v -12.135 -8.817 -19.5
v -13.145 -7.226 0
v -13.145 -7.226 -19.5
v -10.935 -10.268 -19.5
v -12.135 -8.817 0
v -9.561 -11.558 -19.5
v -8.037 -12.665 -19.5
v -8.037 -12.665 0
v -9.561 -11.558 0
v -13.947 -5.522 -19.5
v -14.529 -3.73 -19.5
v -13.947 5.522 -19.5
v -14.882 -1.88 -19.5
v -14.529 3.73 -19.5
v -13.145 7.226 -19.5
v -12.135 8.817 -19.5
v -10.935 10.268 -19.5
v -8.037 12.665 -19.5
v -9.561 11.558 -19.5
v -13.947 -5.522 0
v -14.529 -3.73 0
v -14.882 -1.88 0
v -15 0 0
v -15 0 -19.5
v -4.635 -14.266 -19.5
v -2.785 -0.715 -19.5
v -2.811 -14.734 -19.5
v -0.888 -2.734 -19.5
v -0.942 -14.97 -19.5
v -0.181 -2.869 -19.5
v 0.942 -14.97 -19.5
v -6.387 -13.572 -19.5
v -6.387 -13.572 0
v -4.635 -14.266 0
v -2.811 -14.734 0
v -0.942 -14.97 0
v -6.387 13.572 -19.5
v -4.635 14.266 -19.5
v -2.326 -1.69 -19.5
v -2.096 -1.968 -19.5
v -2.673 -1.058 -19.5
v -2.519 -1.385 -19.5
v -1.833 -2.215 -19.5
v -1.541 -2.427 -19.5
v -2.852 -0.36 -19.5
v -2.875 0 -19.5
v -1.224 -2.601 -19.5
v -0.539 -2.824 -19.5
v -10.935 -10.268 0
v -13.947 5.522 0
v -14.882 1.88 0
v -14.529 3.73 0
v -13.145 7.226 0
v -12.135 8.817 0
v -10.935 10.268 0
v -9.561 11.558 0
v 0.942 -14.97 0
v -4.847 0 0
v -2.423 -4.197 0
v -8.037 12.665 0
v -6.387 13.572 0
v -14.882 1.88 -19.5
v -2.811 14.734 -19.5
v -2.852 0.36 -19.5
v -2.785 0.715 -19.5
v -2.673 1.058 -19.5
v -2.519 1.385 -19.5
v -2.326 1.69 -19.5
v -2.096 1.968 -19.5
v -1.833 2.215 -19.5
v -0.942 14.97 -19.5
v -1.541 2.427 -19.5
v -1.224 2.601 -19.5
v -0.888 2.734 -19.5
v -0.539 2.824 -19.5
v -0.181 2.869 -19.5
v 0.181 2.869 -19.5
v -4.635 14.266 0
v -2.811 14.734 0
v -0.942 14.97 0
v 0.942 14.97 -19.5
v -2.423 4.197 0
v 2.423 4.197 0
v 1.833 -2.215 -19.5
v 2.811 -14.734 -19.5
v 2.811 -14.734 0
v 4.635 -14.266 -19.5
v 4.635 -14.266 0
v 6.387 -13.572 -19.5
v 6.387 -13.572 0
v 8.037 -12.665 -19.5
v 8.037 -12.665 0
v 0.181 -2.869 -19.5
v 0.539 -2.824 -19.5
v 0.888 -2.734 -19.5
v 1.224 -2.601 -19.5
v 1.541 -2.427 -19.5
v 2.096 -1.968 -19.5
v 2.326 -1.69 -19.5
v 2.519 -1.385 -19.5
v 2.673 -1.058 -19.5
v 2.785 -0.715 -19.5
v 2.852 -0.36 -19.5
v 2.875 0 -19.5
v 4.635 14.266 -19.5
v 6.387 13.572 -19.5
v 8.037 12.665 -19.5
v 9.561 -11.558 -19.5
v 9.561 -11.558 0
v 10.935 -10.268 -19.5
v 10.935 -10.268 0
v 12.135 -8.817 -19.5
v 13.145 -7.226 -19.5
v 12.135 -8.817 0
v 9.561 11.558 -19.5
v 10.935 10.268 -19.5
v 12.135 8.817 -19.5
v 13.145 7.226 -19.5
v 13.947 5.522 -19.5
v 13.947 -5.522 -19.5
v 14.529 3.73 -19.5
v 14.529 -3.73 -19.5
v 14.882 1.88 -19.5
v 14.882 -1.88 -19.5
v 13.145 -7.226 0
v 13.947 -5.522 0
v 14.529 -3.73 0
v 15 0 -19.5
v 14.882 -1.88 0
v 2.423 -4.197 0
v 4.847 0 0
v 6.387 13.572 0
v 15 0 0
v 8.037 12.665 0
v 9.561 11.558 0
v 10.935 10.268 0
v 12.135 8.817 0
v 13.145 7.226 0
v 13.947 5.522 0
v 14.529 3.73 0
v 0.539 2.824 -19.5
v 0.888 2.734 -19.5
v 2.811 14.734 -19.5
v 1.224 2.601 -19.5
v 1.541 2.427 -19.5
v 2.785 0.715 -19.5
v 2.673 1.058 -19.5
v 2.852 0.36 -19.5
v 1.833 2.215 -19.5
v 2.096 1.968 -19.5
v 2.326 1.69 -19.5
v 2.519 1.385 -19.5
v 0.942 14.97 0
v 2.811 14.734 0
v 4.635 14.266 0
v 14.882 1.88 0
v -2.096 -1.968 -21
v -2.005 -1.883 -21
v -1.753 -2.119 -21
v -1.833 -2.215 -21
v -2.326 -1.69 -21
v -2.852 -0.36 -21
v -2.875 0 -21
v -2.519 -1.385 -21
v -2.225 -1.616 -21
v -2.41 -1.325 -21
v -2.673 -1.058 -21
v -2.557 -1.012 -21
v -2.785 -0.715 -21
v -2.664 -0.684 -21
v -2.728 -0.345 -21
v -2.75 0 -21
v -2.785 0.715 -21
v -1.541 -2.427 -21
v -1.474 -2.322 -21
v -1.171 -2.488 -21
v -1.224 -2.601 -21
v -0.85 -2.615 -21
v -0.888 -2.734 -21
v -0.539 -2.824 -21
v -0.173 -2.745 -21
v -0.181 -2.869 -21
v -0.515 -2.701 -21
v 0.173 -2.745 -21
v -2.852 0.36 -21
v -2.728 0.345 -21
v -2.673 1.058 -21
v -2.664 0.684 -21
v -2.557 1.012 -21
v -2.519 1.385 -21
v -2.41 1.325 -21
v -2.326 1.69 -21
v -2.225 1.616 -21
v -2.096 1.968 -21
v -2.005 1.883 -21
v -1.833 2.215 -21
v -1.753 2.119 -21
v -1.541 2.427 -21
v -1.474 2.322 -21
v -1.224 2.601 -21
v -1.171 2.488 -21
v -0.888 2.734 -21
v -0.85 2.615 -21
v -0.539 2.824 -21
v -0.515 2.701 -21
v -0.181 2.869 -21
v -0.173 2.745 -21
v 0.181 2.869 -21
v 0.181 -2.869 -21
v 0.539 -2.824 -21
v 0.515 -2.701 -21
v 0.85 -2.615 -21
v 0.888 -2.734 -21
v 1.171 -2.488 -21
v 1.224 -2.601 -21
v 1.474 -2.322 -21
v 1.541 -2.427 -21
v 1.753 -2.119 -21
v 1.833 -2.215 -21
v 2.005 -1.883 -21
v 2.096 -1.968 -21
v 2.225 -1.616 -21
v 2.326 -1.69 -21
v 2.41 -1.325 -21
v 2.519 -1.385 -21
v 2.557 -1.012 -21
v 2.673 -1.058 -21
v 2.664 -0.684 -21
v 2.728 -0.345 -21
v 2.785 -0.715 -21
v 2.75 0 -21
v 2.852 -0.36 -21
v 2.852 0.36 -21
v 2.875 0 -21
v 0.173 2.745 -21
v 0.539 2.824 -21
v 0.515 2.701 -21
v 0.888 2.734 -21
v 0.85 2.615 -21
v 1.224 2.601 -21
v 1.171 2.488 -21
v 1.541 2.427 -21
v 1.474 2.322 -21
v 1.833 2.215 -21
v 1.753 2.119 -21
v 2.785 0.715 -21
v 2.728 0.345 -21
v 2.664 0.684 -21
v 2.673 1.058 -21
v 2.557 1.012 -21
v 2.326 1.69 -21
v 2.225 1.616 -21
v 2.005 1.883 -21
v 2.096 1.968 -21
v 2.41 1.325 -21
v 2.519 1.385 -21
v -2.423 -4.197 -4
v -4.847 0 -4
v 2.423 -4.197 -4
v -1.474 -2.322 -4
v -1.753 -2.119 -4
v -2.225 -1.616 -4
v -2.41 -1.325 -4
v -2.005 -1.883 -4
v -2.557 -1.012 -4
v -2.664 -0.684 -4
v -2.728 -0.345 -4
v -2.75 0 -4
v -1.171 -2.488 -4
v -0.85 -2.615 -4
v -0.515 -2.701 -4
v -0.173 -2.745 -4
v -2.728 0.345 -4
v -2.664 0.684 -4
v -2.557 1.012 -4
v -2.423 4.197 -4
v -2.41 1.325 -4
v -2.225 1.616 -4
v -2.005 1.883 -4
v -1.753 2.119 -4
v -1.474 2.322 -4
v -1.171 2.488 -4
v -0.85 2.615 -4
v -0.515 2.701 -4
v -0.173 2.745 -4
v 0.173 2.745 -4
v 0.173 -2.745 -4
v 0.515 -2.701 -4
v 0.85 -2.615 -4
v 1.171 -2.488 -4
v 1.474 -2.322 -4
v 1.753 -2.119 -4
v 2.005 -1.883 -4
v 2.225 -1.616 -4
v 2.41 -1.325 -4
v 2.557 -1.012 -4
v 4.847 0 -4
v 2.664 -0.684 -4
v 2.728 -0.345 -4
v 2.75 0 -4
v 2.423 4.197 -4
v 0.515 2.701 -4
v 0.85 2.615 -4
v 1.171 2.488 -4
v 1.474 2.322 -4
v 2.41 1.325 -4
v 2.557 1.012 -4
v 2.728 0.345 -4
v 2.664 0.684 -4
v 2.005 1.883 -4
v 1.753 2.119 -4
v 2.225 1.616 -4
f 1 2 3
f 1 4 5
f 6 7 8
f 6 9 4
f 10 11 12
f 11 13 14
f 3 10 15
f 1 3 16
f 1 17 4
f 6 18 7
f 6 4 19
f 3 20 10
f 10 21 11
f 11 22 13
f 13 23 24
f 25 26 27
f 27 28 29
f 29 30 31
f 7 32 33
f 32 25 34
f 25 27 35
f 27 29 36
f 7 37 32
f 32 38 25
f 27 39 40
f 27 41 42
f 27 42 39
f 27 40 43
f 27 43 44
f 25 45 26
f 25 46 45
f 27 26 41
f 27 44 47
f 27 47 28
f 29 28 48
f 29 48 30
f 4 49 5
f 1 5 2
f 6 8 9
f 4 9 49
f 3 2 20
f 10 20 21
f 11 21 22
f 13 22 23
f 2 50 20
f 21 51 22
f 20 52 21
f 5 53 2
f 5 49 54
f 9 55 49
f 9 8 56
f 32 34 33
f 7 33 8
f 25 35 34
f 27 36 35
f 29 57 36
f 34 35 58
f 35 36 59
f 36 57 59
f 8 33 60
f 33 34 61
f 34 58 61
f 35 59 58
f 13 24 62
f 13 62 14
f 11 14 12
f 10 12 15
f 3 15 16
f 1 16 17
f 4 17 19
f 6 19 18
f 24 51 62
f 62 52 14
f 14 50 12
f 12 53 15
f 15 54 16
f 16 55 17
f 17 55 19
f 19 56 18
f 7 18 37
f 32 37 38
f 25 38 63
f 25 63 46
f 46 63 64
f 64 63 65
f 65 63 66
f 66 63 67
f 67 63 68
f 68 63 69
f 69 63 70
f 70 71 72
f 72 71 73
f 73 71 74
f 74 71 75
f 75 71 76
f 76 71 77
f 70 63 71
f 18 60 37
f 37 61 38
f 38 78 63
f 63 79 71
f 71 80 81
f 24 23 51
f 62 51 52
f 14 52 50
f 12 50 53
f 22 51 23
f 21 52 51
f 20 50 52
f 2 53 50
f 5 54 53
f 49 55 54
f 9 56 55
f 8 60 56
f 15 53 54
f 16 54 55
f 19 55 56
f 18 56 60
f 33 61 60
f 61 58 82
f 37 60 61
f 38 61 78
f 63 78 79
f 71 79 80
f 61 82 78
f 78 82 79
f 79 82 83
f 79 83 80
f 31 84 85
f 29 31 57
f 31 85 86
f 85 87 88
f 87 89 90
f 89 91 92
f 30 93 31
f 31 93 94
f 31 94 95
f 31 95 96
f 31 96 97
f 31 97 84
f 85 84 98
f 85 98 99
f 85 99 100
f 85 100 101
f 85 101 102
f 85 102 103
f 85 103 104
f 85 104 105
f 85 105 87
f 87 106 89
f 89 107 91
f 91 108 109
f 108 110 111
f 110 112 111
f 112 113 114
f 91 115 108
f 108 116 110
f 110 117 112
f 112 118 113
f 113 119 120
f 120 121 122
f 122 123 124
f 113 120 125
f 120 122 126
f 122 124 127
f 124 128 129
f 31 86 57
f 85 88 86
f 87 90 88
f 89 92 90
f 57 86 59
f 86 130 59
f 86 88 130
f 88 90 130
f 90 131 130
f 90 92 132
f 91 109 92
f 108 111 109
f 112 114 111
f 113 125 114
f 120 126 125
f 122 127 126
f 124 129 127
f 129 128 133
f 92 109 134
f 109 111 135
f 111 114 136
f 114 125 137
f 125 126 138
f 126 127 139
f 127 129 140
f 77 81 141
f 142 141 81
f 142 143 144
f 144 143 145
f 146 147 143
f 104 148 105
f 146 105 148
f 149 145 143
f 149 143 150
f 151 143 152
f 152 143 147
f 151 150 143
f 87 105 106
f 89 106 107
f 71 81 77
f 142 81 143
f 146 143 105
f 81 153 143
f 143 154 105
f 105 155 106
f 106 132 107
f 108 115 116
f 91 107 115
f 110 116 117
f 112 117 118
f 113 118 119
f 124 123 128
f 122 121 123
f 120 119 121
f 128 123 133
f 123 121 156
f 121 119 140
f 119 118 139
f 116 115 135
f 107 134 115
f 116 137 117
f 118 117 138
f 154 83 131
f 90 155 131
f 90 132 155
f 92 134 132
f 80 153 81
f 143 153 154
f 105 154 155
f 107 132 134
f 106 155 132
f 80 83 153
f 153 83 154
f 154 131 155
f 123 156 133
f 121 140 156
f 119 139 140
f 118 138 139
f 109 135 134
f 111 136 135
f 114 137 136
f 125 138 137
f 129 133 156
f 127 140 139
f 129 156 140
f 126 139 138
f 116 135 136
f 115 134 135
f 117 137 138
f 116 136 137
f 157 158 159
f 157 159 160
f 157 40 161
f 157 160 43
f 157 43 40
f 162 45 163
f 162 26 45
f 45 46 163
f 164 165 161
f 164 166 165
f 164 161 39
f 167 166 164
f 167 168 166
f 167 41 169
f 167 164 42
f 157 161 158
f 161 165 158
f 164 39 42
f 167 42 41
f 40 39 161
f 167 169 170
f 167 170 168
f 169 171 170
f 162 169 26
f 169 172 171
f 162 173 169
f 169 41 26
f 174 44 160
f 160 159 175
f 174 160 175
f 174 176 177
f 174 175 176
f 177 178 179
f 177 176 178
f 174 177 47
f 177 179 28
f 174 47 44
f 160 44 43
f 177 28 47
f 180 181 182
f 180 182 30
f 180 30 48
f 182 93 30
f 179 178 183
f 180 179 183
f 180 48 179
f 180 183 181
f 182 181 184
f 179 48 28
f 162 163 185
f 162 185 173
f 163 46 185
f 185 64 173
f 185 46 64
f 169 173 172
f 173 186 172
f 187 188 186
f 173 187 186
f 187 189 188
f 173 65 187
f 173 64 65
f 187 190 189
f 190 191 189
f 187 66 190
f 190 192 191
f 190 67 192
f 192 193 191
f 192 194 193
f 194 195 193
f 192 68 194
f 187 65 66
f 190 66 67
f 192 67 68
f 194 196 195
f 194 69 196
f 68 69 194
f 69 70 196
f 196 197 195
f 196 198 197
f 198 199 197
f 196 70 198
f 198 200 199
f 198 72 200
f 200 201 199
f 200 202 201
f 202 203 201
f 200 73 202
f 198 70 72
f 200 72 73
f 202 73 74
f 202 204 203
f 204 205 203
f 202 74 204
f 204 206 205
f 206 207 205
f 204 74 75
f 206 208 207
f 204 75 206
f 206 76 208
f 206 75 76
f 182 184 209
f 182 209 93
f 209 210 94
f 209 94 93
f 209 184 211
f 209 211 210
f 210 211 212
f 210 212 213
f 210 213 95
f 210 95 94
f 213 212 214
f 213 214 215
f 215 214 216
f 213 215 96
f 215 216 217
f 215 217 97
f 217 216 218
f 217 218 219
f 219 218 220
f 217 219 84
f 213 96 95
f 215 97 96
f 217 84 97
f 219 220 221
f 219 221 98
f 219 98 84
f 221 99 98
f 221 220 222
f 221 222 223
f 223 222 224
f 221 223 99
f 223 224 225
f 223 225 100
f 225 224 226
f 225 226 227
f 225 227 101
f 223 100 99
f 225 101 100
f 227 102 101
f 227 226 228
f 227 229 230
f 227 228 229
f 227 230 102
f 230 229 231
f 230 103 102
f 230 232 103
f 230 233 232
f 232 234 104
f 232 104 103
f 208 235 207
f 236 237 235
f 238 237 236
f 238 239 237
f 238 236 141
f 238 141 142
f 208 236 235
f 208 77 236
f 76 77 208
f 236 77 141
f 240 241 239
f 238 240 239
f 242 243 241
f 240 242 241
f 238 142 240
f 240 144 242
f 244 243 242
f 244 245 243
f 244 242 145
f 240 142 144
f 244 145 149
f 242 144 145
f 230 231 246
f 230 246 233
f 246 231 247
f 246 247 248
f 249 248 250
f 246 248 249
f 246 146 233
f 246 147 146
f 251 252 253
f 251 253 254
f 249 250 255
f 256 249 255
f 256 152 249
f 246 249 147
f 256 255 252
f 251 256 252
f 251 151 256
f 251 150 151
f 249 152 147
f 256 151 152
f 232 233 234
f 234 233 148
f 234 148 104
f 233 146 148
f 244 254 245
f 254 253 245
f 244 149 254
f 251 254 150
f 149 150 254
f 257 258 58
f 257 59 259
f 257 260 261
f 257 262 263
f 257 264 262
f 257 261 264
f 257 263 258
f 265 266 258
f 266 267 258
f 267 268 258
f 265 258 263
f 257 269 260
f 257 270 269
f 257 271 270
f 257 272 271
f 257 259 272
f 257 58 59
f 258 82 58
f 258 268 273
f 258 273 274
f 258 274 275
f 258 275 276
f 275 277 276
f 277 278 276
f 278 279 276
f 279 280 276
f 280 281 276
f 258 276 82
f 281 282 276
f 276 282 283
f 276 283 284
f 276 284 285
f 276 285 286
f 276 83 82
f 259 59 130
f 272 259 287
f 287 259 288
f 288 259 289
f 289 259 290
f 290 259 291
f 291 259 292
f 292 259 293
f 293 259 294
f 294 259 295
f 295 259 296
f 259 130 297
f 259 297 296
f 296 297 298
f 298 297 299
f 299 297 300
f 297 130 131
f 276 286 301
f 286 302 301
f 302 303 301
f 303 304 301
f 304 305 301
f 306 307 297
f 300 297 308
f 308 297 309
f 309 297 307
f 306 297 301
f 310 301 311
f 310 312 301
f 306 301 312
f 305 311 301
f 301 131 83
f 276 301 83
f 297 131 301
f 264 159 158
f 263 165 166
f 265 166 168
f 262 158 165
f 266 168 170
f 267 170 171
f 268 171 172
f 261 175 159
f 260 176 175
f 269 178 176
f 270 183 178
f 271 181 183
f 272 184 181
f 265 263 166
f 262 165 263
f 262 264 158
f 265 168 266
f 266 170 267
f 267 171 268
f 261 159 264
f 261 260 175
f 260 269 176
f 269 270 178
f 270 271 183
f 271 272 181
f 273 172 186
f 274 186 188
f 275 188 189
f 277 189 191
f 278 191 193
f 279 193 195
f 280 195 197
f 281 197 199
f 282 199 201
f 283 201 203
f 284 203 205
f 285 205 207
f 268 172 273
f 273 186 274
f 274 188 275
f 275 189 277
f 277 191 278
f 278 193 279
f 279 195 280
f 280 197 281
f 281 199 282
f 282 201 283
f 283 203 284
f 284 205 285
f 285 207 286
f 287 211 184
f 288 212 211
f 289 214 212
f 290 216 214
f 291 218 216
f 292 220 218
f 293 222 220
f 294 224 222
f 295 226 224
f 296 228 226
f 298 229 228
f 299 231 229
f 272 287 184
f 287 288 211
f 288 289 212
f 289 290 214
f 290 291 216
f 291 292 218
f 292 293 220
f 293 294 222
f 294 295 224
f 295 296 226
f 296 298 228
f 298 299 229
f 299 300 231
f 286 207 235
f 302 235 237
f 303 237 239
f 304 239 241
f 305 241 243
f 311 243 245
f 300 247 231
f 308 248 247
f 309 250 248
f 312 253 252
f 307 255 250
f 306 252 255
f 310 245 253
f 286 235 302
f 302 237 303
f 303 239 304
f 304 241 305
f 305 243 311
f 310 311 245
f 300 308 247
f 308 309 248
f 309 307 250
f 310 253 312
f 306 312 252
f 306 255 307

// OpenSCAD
$fn = 50;


difference() {
	union() {
		translate(v = [0, 0, -19.5000000000]) {
			cylinder(h = 19.5000000000, r = 15.0000000000);
		}
		#translate(v = [0, 0, -21.0000000000]) {
			cylinder(h = 21, r = 2.8750000000);
		}
	}
	union() {
		translate(v = [0, 0, 0]) {
			rotate(a = [0, 0, 0]) {
				difference() {
					union() {
						translate(v = [0, 0, -4]) {
							linear_extrude(height = 4) {
								polygon(points = [[4.8468000000, 0.0000000000], [2.4234000000, 4.1974519271], [-2.4234000000, 4.1974519271], [-4.8468000000, 0.0000000000], [-2.4234000000, -4.1974519271], [2.4234000000, -4.1974519271]]);
							}
						}
					}
					union();
				}
			}
		}
		#translate(v = [0, 0, -100.0000000000]) {
			cylinder(h = 200, r = 2.7500000000);
		}
	}
}
